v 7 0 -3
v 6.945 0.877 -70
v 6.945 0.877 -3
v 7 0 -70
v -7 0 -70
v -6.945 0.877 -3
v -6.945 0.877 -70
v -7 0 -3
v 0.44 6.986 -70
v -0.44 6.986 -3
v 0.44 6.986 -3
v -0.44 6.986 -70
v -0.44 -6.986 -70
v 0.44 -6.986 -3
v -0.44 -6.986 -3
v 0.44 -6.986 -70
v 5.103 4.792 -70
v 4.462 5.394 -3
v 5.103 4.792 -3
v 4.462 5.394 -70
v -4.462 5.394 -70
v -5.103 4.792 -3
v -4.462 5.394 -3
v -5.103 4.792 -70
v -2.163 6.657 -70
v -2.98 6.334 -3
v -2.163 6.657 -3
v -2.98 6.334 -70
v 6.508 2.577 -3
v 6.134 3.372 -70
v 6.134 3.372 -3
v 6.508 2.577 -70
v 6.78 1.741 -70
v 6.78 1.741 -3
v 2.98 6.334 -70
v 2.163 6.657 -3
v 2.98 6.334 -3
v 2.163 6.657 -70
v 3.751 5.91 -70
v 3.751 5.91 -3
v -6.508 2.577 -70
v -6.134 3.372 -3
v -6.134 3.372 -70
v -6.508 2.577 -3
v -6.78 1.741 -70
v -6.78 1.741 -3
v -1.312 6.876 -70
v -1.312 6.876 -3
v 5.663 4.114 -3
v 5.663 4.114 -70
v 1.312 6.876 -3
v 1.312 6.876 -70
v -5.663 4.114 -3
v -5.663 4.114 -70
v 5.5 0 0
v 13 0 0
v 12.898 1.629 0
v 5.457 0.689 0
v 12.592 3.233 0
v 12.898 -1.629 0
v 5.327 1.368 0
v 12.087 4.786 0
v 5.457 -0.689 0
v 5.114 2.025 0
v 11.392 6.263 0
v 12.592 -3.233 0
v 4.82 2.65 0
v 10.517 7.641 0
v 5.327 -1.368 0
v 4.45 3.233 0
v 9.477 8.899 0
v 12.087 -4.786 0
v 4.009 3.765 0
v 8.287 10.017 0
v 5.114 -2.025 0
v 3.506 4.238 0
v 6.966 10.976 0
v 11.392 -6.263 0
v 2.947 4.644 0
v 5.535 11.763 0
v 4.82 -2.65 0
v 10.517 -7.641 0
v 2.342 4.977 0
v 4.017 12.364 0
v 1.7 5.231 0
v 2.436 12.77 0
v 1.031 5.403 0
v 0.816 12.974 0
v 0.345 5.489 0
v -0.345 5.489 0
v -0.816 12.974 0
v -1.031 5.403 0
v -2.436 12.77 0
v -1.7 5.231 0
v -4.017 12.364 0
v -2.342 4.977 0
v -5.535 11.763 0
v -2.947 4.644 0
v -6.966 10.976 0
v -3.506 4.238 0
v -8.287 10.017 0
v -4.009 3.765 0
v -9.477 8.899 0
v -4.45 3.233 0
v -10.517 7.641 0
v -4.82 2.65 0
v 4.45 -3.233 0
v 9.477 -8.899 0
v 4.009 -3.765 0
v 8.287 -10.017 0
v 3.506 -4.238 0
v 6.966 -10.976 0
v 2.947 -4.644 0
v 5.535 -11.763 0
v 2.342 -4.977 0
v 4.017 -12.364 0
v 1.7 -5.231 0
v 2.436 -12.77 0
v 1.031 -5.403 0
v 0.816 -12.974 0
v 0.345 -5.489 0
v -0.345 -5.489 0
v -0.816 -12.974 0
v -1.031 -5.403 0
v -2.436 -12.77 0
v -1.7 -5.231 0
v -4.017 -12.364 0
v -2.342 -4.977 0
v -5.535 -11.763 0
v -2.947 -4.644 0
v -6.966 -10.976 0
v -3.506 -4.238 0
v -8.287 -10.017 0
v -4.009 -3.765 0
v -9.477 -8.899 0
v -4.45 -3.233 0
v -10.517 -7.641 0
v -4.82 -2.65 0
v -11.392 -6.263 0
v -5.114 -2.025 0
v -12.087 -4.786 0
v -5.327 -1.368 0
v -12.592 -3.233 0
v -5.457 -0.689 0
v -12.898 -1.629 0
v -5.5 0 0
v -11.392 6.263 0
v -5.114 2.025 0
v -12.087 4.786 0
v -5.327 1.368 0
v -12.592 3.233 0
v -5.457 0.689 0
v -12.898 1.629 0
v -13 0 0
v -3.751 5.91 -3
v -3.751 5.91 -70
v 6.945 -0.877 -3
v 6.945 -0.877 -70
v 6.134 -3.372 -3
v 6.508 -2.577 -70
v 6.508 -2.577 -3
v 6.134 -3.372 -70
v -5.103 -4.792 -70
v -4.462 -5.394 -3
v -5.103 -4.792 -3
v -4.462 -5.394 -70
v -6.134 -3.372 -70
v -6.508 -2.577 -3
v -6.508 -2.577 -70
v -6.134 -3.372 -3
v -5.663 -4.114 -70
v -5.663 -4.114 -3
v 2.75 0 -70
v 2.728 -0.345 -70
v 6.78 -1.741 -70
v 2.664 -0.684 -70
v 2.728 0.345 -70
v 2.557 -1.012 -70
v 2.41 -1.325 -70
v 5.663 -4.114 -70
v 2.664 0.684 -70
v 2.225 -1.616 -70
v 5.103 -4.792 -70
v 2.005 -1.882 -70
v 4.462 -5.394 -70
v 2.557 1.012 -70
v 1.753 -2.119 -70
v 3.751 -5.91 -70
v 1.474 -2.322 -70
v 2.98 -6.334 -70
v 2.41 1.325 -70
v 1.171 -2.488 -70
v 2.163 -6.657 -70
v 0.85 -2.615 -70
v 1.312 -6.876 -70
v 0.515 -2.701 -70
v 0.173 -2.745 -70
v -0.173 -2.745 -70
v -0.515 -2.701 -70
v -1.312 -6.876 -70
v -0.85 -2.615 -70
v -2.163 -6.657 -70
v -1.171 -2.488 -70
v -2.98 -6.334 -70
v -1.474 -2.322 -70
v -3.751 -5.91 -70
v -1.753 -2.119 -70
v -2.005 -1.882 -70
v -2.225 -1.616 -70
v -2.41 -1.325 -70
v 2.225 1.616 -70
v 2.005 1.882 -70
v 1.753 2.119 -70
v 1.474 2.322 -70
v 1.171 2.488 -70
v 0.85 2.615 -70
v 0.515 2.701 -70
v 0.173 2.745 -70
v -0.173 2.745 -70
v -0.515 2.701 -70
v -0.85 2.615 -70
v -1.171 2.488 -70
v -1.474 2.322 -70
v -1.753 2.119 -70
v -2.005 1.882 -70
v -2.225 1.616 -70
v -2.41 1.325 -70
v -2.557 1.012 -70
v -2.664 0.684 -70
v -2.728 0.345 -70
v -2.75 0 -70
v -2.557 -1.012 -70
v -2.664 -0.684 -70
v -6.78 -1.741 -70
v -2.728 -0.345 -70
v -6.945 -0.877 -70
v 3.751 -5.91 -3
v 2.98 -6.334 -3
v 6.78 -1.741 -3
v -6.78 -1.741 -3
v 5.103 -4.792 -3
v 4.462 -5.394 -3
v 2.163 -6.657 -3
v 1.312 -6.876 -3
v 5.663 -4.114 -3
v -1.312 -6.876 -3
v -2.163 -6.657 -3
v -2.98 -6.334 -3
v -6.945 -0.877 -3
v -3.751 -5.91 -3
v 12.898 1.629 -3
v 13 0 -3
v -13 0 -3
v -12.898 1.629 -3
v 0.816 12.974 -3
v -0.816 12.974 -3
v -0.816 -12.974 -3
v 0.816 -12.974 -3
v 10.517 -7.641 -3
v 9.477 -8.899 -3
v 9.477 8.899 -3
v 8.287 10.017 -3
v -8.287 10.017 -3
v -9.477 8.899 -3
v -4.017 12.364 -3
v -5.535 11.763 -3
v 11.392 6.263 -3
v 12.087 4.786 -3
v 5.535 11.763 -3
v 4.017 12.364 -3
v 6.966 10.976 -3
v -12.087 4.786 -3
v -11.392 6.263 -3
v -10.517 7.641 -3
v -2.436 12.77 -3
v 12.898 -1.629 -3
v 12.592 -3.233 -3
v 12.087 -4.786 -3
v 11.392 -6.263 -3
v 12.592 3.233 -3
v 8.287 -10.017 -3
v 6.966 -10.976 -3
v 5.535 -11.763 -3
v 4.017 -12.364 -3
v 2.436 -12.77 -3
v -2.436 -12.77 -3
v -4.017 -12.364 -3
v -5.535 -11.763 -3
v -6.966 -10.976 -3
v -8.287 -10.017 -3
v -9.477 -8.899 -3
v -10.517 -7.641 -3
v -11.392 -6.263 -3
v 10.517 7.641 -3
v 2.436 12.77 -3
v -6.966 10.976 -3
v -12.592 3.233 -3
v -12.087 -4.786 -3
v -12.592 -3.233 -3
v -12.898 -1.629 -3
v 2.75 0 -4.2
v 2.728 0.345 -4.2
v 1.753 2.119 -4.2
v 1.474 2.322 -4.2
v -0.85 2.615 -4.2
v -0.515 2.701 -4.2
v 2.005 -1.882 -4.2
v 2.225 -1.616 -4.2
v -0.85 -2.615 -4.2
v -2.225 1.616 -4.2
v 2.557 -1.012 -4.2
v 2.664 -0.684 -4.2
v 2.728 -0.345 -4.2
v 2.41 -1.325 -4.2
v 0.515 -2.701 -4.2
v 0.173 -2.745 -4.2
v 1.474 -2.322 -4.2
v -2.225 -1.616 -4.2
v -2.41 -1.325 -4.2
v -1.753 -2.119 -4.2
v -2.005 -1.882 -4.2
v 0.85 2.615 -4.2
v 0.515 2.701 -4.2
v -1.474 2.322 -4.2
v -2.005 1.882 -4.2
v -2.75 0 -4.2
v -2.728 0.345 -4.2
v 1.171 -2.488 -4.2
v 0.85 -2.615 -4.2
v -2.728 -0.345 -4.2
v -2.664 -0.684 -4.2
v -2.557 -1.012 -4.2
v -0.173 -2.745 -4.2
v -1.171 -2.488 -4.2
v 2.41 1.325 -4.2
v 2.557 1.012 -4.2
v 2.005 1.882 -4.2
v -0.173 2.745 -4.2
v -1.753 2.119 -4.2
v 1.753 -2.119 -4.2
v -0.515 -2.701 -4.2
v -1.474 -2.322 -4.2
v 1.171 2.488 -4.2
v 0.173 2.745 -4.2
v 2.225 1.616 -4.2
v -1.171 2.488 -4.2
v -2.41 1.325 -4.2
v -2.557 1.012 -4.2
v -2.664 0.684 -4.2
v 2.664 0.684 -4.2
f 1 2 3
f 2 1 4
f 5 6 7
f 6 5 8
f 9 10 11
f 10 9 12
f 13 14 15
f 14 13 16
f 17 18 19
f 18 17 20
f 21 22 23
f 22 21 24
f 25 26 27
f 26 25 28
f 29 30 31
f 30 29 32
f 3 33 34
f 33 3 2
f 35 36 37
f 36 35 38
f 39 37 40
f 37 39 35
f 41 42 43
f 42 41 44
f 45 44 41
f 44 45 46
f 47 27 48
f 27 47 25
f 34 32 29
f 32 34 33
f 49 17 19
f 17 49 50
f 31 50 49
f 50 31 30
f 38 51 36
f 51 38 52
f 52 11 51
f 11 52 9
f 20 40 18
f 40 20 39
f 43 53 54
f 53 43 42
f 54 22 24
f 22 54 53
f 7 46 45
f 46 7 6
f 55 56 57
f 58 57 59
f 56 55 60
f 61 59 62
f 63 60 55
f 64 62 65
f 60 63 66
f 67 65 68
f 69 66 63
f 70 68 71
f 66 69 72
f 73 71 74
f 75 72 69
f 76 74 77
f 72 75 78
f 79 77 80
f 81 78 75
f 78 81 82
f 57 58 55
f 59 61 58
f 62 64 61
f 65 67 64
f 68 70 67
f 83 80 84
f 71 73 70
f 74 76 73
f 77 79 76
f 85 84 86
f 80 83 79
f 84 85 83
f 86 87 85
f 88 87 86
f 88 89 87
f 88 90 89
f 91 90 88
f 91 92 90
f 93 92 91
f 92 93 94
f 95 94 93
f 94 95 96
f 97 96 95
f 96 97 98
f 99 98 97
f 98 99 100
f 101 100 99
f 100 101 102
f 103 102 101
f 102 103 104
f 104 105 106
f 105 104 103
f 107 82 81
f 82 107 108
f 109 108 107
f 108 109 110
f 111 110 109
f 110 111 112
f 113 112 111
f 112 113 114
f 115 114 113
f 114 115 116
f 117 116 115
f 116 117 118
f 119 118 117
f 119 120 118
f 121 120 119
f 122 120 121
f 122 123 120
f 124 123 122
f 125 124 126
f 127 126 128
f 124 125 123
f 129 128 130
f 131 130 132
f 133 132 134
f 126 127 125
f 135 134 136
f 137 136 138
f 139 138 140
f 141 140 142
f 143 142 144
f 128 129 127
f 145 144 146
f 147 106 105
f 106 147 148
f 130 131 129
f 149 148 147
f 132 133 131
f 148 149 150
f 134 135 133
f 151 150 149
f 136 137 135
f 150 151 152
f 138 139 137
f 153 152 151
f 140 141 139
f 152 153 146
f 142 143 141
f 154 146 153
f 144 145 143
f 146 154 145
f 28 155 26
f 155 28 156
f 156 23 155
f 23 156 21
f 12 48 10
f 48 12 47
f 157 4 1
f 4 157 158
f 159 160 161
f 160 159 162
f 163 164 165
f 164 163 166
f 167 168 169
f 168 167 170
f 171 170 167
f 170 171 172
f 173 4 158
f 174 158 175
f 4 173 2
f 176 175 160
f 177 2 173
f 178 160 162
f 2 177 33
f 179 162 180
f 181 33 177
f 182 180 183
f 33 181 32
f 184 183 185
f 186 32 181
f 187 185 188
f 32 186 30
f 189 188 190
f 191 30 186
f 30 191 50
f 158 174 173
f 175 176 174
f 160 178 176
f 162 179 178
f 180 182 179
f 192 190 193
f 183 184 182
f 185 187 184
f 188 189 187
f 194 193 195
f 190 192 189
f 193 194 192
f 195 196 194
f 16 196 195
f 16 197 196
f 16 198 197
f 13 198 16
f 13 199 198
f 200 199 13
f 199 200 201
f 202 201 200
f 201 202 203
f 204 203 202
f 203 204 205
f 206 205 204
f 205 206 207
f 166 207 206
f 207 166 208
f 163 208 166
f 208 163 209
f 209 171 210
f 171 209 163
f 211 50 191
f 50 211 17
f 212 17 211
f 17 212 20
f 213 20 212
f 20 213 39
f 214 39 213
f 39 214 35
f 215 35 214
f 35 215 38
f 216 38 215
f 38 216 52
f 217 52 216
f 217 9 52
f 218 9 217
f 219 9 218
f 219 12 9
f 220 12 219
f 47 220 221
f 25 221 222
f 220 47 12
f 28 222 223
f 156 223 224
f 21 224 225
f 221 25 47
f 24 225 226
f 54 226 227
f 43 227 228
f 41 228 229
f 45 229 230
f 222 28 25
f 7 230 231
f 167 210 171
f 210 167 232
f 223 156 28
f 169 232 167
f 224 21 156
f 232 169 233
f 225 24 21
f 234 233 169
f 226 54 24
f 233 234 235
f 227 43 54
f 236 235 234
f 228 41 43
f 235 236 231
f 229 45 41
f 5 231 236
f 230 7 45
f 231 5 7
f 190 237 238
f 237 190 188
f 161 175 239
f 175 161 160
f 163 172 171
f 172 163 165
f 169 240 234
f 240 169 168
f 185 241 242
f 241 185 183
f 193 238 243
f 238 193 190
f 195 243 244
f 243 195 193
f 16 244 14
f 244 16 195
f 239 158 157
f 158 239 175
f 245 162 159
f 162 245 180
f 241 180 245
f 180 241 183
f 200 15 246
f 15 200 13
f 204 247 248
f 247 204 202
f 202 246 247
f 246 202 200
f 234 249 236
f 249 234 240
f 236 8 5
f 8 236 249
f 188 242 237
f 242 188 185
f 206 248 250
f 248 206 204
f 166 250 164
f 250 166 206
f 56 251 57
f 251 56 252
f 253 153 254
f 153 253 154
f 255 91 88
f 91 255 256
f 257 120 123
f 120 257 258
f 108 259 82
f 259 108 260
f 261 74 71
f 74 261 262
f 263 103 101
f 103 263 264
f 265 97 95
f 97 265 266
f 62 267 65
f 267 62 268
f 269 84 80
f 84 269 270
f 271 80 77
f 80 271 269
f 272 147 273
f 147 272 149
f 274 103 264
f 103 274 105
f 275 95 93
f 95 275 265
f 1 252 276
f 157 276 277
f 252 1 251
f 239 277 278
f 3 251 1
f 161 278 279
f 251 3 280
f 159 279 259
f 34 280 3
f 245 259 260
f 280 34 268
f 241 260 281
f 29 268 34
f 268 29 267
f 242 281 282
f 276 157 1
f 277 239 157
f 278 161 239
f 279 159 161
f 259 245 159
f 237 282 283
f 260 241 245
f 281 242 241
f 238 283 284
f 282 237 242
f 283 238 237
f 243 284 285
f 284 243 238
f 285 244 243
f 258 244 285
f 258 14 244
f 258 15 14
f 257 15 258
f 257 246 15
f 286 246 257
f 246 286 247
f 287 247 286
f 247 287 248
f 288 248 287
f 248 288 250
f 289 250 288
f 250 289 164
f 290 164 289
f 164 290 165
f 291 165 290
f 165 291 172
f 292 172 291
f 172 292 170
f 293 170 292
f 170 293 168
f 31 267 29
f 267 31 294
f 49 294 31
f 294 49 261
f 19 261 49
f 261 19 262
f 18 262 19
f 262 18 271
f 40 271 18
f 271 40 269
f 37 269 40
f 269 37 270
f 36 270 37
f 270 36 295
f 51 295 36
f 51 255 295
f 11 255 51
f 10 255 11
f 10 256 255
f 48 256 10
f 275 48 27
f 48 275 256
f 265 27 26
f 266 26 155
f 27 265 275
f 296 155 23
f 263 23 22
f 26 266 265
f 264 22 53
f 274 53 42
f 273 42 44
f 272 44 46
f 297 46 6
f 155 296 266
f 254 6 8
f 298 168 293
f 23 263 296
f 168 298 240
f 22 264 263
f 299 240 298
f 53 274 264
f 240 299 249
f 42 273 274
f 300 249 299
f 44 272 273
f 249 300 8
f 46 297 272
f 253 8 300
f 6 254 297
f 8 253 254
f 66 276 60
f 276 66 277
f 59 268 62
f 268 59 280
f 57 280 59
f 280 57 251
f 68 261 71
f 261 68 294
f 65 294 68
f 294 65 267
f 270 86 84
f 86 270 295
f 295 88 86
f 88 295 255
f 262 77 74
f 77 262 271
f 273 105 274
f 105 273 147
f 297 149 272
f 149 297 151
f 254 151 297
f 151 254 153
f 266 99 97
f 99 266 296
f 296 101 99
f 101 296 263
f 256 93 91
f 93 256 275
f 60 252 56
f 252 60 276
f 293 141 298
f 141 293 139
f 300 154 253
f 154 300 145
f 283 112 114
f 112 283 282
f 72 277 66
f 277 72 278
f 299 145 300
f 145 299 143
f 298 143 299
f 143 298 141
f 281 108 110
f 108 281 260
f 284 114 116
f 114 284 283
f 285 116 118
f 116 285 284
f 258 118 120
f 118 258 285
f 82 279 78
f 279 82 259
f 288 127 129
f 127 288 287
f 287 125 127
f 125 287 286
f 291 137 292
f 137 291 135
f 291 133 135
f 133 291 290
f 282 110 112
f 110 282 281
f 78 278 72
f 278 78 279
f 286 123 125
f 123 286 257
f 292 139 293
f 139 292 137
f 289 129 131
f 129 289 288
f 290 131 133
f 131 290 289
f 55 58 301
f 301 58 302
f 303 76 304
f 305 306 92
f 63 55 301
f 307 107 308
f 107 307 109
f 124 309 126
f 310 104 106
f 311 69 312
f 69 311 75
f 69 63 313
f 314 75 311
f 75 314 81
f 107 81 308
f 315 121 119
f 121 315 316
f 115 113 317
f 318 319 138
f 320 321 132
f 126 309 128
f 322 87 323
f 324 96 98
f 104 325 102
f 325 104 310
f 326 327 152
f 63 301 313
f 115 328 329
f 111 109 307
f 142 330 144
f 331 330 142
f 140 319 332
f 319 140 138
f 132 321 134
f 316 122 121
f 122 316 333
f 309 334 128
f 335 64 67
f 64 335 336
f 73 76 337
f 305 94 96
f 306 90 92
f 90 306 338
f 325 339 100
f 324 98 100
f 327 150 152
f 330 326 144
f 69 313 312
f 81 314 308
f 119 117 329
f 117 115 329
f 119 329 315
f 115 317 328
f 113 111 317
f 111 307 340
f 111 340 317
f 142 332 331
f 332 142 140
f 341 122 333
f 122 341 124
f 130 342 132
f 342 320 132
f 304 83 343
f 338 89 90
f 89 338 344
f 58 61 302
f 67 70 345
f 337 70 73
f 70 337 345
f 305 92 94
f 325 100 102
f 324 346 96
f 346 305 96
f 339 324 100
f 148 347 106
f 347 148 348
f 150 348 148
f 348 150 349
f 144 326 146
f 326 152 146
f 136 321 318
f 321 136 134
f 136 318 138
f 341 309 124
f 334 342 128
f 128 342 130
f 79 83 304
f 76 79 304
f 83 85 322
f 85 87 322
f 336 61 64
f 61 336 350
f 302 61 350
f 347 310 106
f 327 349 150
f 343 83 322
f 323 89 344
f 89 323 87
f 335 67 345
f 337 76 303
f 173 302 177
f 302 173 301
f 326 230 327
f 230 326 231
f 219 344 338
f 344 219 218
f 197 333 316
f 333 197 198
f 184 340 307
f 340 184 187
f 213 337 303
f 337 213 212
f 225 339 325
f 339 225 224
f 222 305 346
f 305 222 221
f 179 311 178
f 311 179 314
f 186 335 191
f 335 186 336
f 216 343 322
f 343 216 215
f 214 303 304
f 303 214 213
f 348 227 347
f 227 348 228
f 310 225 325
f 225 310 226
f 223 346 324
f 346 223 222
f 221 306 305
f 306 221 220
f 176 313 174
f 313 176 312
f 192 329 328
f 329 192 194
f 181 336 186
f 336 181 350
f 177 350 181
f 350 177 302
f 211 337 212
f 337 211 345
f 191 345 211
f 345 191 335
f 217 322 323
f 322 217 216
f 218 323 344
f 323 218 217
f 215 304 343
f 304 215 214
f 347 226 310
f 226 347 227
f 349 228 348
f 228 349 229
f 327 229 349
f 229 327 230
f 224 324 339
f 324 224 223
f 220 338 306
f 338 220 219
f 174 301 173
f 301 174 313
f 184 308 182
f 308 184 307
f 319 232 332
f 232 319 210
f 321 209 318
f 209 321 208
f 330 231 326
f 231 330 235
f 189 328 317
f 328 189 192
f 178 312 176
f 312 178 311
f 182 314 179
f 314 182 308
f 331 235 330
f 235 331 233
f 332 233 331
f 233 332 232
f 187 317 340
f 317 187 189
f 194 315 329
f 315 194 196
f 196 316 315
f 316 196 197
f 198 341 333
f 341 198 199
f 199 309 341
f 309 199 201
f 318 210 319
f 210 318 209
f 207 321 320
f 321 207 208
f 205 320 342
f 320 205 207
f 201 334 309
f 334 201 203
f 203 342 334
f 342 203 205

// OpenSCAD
$fn = 50;


difference() {
	union() {
		translate(v = [0, 0, -70.0000000000]) {
			cylinder(h = 70, r = 7.0000000000);
		}
		translate(v = [0, 0, -3.0000000000]) {
			cylinder(h = 3, r = 13.0000000000);
		}
	}
	union() {
		translate(v = [0, 0, 0]) {
			rotate(a = [0, 0, 0]) {
				difference() {
					union() {
						#translate(v = [0, 0, -70.0000000000]) {
							cylinder(h = 70, r = 2.2500000000);
						}
						#translate(v = [0, 0, -4.2000000000]) {
							cylinder(h = 4.2000000000, r1 = 2.7500000000, r2 = 5.5000000000);
						}
						#translate(v = [0, 0, -70.0000000000]) {
							cylinder(h = 70, r = 2.7500000000);
						}
						#translate(v = [0, 0, -70.0000000000]) {
							cylinder(h = 70, r = 2.2500000000);
						}
					}
					union();
				}
			}
		}
	}
}
